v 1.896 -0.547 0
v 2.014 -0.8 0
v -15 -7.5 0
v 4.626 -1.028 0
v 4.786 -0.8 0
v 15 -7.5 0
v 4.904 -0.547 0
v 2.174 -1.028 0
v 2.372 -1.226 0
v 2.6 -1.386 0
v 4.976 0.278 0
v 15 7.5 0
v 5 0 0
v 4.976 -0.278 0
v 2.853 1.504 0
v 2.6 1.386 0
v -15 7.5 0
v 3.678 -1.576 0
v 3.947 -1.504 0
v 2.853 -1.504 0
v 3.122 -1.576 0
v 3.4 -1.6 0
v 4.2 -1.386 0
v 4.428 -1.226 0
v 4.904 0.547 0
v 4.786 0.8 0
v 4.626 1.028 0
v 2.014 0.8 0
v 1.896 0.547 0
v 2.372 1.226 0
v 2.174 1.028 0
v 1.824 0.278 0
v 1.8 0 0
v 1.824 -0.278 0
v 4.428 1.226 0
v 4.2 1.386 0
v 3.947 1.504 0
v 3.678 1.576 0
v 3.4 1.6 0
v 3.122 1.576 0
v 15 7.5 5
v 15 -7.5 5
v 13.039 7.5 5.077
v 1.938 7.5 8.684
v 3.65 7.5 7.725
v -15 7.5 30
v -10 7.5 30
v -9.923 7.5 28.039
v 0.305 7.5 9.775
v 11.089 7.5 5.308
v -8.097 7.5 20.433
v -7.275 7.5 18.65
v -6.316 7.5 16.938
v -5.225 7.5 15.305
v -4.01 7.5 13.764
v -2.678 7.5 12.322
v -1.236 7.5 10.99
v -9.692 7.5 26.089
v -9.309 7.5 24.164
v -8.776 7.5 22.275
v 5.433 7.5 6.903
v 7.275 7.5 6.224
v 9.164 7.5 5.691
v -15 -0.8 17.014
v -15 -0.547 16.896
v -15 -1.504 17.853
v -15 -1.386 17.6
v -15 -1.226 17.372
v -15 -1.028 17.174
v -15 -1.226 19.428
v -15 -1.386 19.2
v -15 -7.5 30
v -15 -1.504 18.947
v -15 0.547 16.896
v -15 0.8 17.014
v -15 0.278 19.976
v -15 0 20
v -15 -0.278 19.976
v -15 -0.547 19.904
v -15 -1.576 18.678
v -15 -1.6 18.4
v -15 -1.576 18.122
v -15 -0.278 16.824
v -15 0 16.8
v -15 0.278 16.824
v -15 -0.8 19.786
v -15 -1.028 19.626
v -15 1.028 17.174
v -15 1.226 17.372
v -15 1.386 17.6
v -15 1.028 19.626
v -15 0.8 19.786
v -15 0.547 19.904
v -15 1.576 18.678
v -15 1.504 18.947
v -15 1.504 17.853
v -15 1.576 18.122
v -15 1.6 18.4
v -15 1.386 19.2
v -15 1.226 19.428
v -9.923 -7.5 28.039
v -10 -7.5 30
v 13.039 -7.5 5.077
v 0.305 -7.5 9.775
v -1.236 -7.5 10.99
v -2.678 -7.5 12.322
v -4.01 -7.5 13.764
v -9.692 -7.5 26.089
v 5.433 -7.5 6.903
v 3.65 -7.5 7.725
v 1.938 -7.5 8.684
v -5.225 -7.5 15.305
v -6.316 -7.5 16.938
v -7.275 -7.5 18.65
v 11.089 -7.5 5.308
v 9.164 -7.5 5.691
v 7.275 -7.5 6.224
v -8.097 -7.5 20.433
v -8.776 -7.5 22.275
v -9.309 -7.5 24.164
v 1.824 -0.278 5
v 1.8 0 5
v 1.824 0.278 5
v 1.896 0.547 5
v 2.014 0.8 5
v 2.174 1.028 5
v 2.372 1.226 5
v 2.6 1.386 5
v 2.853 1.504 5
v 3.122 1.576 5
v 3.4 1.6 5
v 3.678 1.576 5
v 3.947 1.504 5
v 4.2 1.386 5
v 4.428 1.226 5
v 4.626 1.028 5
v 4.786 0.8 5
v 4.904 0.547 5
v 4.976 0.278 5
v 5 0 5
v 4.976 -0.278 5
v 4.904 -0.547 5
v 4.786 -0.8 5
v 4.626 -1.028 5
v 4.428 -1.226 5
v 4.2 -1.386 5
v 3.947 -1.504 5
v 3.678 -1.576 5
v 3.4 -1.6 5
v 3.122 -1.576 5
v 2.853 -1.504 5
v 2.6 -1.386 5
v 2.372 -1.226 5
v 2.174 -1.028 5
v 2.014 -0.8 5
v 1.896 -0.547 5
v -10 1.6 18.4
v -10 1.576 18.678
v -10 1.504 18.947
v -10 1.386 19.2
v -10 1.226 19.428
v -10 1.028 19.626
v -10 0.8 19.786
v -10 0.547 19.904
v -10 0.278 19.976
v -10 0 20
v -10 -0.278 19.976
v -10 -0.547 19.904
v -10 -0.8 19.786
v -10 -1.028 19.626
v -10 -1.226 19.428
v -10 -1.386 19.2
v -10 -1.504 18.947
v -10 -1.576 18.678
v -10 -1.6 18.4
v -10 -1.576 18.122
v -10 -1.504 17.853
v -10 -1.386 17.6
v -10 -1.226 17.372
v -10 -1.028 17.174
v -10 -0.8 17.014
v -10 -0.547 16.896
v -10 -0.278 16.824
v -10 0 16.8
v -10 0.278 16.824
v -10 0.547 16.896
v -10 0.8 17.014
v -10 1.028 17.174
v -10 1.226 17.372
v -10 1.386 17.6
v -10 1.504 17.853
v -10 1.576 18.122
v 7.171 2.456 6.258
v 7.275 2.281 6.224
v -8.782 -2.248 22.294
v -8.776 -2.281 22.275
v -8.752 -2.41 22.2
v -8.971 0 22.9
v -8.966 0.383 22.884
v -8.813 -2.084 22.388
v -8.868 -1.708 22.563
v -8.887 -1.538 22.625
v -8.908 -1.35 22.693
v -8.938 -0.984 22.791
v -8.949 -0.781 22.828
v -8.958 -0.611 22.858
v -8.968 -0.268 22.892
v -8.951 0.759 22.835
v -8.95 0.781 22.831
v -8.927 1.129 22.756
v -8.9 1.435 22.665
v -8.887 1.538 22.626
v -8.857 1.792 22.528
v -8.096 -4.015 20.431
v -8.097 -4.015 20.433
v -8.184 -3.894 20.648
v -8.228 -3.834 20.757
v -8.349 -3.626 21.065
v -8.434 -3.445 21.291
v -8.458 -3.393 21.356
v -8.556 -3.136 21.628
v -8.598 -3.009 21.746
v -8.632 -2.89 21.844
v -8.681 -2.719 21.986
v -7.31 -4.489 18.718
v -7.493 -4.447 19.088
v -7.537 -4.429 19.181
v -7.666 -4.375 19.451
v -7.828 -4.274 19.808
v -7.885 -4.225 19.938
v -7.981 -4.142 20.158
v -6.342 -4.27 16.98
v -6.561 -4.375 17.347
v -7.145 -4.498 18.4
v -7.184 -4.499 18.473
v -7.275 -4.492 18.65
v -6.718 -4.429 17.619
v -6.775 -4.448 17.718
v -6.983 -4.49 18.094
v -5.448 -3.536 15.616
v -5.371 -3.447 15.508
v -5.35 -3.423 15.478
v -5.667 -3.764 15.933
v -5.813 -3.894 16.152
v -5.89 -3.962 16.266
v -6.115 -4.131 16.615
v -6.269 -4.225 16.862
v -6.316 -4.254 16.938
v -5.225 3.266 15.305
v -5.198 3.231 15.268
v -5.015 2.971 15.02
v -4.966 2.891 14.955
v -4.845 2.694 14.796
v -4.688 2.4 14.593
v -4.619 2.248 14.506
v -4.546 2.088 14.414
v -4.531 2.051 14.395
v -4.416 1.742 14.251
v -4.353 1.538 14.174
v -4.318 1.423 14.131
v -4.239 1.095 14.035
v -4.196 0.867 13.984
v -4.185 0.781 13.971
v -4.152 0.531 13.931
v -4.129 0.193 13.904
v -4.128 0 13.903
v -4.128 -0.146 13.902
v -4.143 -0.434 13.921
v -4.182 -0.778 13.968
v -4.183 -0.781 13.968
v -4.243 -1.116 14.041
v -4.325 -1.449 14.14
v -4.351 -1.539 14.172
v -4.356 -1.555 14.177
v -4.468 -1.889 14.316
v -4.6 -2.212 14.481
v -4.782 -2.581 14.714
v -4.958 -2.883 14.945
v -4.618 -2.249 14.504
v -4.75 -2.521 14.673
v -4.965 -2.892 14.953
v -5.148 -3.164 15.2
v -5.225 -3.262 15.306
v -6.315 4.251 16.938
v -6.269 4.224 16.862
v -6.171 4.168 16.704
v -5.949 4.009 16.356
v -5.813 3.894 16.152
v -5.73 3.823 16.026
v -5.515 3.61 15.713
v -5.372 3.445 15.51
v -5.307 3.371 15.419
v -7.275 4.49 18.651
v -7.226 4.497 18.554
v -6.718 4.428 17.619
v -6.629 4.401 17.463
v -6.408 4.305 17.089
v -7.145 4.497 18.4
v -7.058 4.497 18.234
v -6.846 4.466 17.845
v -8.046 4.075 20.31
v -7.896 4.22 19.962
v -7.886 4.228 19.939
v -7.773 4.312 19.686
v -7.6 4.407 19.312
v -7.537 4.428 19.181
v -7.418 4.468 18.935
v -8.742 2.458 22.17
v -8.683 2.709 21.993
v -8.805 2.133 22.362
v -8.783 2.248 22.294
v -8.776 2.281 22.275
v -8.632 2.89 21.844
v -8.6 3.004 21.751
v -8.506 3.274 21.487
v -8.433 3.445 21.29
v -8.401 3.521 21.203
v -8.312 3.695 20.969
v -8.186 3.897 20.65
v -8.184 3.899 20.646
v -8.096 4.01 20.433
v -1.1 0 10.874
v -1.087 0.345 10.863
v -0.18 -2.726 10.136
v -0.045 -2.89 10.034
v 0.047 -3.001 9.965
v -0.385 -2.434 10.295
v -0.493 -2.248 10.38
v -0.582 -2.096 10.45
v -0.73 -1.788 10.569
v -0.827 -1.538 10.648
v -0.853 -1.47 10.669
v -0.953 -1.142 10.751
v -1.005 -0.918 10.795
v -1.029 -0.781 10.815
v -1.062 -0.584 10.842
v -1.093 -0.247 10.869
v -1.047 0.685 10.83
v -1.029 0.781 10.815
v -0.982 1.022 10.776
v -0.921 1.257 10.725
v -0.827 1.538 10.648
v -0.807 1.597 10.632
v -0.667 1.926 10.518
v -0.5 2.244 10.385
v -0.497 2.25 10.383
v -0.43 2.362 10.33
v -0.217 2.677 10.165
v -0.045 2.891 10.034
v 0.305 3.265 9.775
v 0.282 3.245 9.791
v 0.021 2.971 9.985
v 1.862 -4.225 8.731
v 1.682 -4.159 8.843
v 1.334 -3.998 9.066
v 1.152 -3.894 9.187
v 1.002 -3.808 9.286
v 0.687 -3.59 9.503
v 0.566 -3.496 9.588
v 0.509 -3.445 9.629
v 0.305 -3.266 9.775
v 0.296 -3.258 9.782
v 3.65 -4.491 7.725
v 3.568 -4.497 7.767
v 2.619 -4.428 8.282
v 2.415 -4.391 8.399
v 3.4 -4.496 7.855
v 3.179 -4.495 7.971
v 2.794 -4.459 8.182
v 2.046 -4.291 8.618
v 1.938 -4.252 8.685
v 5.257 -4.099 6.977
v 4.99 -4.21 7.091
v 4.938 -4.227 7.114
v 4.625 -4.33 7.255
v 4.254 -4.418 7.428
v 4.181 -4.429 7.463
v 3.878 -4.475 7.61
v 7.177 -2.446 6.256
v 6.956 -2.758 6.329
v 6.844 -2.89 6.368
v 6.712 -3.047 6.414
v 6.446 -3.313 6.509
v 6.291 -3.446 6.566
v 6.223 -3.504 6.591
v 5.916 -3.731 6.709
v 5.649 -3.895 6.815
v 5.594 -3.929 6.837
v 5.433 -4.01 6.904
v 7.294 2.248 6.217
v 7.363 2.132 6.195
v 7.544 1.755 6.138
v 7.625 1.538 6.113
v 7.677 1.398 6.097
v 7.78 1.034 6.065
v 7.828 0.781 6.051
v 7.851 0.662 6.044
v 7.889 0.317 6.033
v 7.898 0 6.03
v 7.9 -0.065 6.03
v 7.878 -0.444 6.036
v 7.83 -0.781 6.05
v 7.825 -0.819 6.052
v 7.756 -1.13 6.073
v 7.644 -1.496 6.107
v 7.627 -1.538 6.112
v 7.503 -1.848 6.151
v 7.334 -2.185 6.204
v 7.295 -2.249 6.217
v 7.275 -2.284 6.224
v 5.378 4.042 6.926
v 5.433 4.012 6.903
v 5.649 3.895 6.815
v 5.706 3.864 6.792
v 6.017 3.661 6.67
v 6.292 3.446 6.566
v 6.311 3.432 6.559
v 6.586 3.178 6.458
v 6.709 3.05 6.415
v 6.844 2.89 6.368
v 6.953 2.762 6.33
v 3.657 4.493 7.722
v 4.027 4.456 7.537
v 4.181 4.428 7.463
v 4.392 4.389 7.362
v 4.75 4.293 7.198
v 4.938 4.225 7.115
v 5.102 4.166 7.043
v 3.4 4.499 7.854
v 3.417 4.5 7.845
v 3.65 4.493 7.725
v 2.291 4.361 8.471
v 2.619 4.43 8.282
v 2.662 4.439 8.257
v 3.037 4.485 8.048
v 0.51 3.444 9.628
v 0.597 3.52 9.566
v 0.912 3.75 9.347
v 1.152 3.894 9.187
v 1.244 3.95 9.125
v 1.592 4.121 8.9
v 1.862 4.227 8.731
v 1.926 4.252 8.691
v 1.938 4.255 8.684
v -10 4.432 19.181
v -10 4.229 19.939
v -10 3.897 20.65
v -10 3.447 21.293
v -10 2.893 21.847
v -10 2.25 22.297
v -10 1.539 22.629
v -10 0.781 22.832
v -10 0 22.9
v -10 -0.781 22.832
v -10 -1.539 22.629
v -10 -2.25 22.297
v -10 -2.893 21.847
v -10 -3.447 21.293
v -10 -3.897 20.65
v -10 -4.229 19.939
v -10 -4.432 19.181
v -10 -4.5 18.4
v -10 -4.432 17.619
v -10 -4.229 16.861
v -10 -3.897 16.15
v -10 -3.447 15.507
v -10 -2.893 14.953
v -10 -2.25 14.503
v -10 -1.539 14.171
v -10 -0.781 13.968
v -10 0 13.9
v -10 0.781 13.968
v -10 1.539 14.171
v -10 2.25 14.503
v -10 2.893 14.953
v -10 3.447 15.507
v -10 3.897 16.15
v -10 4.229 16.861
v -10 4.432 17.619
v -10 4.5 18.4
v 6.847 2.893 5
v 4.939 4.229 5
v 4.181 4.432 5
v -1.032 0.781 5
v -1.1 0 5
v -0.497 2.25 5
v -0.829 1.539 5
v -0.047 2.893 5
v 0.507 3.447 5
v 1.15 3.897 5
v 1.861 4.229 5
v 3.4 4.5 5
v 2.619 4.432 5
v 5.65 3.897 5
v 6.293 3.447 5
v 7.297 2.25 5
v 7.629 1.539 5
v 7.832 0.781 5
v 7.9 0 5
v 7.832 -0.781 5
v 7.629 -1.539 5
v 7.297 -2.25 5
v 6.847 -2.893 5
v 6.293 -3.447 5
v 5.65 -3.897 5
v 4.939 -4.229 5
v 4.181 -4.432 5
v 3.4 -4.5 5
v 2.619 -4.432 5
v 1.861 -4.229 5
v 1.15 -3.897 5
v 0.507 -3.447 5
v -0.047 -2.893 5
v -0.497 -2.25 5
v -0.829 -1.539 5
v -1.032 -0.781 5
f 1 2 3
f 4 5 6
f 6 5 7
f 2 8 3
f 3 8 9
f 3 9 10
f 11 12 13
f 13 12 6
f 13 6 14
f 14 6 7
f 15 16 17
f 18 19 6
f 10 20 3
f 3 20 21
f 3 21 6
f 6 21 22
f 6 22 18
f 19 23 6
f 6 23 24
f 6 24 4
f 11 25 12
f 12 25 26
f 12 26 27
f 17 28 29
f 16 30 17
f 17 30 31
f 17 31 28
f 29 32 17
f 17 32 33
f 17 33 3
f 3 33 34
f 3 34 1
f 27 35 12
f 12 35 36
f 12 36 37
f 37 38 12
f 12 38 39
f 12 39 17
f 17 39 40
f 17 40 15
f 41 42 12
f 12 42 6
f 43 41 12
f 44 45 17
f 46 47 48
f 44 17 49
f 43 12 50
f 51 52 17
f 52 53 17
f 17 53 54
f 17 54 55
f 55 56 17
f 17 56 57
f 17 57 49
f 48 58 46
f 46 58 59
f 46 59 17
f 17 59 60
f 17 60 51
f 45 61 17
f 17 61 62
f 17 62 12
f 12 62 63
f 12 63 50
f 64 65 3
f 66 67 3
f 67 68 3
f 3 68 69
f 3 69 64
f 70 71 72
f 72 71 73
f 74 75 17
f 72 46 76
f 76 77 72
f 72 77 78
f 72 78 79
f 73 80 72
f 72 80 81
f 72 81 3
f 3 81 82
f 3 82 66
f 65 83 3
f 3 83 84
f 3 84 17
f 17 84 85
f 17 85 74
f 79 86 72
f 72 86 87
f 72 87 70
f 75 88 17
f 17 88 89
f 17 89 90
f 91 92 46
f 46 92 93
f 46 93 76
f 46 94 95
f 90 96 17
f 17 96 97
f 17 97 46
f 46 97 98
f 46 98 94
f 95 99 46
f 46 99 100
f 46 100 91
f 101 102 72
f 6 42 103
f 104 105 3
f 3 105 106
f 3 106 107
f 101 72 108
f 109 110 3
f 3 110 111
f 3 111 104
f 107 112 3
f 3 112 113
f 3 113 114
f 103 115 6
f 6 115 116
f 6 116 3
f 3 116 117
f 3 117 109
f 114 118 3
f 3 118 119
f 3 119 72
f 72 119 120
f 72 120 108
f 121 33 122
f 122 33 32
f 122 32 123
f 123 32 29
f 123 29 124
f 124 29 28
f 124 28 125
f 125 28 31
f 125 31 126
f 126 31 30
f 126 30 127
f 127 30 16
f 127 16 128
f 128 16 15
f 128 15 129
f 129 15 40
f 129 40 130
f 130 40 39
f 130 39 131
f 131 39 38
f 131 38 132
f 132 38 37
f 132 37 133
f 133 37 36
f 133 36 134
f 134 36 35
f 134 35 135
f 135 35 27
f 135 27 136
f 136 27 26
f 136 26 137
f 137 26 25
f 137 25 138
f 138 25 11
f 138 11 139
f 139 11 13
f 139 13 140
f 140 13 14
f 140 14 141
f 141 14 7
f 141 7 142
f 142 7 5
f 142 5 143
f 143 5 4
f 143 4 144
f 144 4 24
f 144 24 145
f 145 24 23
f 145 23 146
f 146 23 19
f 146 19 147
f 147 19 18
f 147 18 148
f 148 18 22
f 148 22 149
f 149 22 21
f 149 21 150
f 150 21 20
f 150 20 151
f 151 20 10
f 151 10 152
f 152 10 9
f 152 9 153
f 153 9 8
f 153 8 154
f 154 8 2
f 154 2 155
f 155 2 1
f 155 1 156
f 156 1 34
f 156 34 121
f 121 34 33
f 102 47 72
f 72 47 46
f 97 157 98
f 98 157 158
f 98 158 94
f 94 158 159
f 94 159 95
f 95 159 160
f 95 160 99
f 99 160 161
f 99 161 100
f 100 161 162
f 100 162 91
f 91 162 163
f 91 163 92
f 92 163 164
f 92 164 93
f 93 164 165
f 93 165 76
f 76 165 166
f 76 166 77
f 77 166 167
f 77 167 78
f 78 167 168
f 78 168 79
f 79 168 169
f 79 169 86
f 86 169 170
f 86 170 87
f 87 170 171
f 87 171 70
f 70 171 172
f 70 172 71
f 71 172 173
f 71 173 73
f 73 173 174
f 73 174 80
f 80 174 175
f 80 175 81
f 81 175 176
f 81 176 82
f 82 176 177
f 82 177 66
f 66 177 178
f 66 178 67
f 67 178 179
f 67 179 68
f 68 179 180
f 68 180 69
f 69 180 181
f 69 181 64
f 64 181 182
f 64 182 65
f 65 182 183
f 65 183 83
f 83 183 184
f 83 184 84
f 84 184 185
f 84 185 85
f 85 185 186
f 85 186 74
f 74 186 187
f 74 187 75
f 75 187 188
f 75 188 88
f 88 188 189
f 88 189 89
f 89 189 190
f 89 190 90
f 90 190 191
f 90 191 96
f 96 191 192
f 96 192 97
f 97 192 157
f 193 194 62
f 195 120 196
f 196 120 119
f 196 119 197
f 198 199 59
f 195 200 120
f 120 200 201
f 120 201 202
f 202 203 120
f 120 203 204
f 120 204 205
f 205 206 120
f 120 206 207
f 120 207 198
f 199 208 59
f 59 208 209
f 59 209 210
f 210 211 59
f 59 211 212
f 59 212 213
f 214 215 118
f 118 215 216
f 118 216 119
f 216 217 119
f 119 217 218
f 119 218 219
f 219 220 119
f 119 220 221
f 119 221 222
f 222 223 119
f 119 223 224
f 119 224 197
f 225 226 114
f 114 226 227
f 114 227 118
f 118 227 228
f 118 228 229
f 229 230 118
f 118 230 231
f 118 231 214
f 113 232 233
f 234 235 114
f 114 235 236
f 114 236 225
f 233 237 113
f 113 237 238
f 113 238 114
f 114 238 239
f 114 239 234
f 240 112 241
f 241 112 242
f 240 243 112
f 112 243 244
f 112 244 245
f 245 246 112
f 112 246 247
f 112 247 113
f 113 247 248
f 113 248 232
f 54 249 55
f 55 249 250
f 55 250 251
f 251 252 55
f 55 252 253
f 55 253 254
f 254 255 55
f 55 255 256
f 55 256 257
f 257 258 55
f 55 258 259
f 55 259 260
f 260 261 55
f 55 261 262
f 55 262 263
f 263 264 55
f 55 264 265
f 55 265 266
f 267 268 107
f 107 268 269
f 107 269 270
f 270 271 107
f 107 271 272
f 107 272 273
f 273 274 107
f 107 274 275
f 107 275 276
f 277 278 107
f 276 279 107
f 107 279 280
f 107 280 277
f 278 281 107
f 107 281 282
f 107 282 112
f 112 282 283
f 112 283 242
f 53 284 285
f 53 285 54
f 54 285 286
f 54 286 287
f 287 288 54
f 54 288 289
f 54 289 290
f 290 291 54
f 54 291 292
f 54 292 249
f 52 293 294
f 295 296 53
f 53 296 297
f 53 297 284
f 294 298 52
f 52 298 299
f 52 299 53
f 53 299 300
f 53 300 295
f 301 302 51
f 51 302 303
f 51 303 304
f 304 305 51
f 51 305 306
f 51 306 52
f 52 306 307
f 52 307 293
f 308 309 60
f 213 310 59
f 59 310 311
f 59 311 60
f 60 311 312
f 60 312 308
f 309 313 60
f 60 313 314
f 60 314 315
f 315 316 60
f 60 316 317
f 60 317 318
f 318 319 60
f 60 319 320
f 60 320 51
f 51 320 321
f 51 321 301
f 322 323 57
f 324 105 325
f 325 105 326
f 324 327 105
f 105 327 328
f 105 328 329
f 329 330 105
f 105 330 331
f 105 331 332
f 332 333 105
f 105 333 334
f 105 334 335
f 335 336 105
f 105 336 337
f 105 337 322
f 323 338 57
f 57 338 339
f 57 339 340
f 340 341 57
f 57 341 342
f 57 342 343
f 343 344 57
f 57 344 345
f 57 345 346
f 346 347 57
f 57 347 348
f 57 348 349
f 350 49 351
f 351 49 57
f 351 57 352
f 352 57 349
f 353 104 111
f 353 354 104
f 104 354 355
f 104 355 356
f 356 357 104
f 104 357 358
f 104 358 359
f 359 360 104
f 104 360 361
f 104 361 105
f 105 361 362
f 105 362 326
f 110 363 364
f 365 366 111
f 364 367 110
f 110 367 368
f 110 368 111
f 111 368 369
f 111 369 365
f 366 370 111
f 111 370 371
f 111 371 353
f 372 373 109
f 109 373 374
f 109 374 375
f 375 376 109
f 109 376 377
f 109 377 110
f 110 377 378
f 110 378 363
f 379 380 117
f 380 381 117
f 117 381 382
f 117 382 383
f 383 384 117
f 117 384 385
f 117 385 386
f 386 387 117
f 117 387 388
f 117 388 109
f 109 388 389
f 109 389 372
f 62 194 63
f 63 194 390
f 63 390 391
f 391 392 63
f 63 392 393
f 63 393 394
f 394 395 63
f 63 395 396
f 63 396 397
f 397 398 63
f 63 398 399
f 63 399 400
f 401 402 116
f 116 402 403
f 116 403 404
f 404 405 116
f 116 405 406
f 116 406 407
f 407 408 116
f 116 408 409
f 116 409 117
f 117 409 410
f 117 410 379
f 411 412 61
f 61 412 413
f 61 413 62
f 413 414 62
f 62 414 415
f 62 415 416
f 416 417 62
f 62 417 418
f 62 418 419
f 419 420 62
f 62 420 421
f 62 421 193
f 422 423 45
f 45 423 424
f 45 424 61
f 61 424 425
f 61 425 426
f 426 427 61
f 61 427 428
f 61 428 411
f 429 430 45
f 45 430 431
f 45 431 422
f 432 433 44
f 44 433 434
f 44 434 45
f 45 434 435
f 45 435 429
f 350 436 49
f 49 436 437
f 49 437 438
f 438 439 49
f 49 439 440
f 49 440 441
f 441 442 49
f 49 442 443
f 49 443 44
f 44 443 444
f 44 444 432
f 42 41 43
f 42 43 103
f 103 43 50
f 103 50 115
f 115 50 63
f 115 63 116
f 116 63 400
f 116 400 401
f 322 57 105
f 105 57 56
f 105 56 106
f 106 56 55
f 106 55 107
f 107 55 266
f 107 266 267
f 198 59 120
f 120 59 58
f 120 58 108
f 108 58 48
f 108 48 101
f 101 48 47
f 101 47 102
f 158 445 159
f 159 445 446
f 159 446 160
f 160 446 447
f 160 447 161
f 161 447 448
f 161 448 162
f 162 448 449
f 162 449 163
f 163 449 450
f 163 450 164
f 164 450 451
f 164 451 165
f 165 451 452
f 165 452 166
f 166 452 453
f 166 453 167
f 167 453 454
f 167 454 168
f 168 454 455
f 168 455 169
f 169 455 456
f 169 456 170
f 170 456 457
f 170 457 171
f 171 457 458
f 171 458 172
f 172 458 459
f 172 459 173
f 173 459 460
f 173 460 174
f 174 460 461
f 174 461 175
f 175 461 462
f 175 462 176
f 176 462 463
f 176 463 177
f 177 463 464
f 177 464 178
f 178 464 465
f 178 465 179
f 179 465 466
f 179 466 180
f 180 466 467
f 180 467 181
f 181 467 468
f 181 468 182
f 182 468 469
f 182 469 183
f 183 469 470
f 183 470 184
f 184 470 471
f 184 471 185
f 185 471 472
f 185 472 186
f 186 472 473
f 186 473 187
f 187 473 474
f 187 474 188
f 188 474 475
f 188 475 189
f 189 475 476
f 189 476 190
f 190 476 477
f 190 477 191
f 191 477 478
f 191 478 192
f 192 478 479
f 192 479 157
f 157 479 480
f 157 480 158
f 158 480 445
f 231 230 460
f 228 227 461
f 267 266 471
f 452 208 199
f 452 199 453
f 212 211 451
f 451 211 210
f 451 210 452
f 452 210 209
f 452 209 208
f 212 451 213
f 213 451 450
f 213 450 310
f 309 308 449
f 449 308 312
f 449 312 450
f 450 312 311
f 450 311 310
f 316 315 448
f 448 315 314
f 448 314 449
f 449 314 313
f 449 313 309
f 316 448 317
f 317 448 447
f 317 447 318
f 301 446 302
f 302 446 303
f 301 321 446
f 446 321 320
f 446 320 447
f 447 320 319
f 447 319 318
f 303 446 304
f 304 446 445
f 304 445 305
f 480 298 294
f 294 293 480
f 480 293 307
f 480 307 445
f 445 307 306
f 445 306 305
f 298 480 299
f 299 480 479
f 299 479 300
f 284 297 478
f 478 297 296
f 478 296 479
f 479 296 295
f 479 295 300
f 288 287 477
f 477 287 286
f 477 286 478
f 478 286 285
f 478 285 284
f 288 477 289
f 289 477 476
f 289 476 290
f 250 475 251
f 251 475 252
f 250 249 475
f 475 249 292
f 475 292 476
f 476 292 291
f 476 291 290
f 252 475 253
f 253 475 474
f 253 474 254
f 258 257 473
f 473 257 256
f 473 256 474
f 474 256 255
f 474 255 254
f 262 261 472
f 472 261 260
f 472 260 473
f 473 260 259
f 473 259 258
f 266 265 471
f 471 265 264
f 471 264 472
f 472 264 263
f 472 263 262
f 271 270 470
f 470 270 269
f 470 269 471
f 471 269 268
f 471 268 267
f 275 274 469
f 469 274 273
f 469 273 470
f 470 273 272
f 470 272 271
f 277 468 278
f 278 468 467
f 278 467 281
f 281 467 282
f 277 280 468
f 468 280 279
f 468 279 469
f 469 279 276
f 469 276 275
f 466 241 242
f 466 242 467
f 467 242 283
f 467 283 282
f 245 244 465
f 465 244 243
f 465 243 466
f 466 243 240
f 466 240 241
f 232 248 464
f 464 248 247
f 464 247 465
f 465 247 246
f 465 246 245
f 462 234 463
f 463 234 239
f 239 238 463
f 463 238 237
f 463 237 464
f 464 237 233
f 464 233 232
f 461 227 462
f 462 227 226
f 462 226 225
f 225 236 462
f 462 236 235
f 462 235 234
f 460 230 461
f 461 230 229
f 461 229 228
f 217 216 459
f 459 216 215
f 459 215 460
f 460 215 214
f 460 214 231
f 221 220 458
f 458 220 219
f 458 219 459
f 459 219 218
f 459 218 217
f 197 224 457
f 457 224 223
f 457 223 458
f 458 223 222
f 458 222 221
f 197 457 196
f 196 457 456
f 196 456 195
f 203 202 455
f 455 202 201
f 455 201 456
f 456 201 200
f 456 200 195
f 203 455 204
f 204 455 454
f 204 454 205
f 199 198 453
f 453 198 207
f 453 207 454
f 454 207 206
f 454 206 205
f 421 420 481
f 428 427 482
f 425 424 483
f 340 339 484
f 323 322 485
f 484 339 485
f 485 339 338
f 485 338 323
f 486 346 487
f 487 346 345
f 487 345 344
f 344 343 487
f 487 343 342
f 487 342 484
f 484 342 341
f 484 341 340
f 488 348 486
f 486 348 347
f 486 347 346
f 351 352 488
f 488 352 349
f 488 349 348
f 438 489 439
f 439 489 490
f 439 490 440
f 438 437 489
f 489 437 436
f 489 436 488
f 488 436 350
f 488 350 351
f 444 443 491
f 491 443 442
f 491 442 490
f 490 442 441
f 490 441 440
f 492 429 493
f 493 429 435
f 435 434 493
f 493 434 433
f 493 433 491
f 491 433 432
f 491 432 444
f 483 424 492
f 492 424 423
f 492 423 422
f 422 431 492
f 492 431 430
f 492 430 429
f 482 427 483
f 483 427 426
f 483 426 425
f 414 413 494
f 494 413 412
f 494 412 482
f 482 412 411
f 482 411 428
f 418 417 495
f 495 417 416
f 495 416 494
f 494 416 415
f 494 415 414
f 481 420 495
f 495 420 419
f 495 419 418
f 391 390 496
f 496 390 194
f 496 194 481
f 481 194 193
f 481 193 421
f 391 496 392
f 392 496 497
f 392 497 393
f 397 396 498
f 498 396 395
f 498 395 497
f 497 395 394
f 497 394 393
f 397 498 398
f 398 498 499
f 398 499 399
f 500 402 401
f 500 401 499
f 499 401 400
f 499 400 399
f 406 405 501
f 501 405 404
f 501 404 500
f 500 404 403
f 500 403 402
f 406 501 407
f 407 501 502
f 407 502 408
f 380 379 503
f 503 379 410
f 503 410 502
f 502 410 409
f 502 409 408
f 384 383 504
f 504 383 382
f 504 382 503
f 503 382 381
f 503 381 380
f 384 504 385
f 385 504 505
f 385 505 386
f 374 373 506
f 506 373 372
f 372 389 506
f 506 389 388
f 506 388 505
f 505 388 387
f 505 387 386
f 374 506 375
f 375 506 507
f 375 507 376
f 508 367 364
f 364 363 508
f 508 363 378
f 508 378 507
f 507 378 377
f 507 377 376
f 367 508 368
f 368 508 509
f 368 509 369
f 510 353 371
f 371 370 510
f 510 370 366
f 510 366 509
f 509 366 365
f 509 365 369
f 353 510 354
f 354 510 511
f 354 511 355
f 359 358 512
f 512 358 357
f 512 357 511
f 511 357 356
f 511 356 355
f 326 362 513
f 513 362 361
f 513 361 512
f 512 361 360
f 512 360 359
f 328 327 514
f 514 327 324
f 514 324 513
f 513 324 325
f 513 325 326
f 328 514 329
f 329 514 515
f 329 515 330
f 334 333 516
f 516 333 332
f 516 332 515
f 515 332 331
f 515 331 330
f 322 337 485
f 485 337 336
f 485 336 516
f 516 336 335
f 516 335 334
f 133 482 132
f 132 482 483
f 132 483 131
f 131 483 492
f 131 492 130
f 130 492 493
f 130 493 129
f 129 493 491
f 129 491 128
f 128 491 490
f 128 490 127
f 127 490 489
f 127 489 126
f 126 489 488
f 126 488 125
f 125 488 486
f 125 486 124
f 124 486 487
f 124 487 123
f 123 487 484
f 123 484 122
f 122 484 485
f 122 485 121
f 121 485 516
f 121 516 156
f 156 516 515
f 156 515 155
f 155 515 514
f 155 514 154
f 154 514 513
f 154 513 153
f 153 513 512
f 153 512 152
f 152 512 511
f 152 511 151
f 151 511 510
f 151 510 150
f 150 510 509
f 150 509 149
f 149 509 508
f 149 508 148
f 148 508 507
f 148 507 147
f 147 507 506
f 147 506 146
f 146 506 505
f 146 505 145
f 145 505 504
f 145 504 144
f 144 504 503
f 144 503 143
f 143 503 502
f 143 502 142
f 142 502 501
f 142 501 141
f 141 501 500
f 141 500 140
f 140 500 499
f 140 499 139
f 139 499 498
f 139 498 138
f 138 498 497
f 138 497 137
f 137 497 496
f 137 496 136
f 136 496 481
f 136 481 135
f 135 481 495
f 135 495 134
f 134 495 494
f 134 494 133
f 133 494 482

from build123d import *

# Parameters (mm, degrees)
SKETCH1_W           = 30
SKETCH1_H           = 15
SKETCH1_R           = 1.6
BOSS_EXTRUDE1_DEPTH = 5
SKETCH2_W           = 5
SKETCH2_H           = 15
BOSS_EXTRUDE2_DEPTH = 25
CUT_EXTRUDE1_REACH  = 41.765
SKETCH3_R           = 1.6
FILLET1_R           = 25
CUT_EXTRUDE2_START  = -5
SKETCH4_R           = 4.5
CUT_EXTRUDE2_DEPTH  = 39.084220006
CUT_EXTRUDE3_START  = -5
SKETCH5_R           = 4.5
CUT_EXTRUDE3_DEPTH  = 30.369317865


with BuildPart() as part:
    # Sketch1 → Boss-Extrude1 (new body)
    with BuildSketch(Plane.XY):
        Rectangle(SKETCH1_W, SKETCH1_H)
        with Locations((3.4, 0)):
            Circle(SKETCH1_R, mode=Mode.SUBTRACT)
    extrude(amount=BOSS_EXTRUDE1_DEPTH)

    # Sketch2 → Boss-Extrude2 (add)
    with BuildSketch(Plane.XY.offset(5)):
        with Locations((-12.5, 0)):
            Rectangle(SKETCH2_W, SKETCH2_H)
    extrude(amount=BOSS_EXTRUDE2_DEPTH)

    # Sketch3 → Cut-Extrude1 (cut, up to next)
    with BuildSketch(Plane(origin=(-10, 0, 0), x_dir=(0, 0, -1), z_dir=(1, 0, 0)), mode=Mode.PRIVATE) as cut_extrude1_sk1:
        with Locations(Location((-18.4, 0, 0), (0, 0, 90))):
            Circle(SKETCH3_R)
    cut_extrude1_tool1 = extrude(cut_extrude1_sk1.sketch, amount=-CUT_EXTRUDE1_REACH, mode=Mode.PRIVATE) & part.part
    add(cut_extrude1_tool1.solids().sort_by_distance((-10, 0, 18.4))[0], mode=Mode.SUBTRACT)

    # Fillet1
    # the kernel refuses this fillet: 25 mm, written as the material it adds along each edge
    with BuildSketch(Plane(origin=(-10, 7.5, 5), x_dir=(0, 0, 1), z_dir=(0, -1, 0))) as fillet1_piece_1_section:
        with BuildLine():
            CenterArc((FILLET1_R, -FILLET1_R), FILLET1_R, 90, 90)
            Line((0, -FILLET1_R), (0, 0))
            Line((0, 0), (FILLET1_R, 0))
        make_face()
    fillet1_piece_1 = extrude(amount=15, mode=Mode.PRIVATE)
    fillet1_piece_1 = fillet1_piece_1 - Plane(origin=(-4.377200925, 0, 18.4), x_dir=(0, 1, 0), z_dir=(1, 0, 0)) * Cylinder(1.6, 130, mode=Mode.PRIVATE)
    fillet1_piece_1 = fillet1_piece_1 - Plane(origin=(3.4, 0, 10.622848357), x_dir=(1, 0, 0), z_dir=(0, 0, -1)) * Cylinder(1.6, 130, mode=Mode.PRIVATE)
    add(fillet1_piece_1)

    # Sketch4 → Cut-Extrude2 (cut, through all)
    with BuildSketch(Plane.ZY.offset(15).offset(CUT_EXTRUDE2_START)):
        with Locations((18.4, 0)):
            Circle(SKETCH4_R)
    extrude(amount=-CUT_EXTRUDE2_DEPTH, mode=Mode.SUBTRACT)

    # Sketch5 → Cut-Extrude3 (cut, through all)
    with BuildSketch(Plane(origin=(0, 0, 0), x_dir=(-1, 0, 0), z_dir=(0, 0, -1)).offset(CUT_EXTRUDE3_START)):
        with Locations((-3.4, 0)):
            Circle(SKETCH5_R)
    extrude(amount=-CUT_EXTRUDE3_DEPTH, mode=Mode.SUBTRACT)


solid = part.part
